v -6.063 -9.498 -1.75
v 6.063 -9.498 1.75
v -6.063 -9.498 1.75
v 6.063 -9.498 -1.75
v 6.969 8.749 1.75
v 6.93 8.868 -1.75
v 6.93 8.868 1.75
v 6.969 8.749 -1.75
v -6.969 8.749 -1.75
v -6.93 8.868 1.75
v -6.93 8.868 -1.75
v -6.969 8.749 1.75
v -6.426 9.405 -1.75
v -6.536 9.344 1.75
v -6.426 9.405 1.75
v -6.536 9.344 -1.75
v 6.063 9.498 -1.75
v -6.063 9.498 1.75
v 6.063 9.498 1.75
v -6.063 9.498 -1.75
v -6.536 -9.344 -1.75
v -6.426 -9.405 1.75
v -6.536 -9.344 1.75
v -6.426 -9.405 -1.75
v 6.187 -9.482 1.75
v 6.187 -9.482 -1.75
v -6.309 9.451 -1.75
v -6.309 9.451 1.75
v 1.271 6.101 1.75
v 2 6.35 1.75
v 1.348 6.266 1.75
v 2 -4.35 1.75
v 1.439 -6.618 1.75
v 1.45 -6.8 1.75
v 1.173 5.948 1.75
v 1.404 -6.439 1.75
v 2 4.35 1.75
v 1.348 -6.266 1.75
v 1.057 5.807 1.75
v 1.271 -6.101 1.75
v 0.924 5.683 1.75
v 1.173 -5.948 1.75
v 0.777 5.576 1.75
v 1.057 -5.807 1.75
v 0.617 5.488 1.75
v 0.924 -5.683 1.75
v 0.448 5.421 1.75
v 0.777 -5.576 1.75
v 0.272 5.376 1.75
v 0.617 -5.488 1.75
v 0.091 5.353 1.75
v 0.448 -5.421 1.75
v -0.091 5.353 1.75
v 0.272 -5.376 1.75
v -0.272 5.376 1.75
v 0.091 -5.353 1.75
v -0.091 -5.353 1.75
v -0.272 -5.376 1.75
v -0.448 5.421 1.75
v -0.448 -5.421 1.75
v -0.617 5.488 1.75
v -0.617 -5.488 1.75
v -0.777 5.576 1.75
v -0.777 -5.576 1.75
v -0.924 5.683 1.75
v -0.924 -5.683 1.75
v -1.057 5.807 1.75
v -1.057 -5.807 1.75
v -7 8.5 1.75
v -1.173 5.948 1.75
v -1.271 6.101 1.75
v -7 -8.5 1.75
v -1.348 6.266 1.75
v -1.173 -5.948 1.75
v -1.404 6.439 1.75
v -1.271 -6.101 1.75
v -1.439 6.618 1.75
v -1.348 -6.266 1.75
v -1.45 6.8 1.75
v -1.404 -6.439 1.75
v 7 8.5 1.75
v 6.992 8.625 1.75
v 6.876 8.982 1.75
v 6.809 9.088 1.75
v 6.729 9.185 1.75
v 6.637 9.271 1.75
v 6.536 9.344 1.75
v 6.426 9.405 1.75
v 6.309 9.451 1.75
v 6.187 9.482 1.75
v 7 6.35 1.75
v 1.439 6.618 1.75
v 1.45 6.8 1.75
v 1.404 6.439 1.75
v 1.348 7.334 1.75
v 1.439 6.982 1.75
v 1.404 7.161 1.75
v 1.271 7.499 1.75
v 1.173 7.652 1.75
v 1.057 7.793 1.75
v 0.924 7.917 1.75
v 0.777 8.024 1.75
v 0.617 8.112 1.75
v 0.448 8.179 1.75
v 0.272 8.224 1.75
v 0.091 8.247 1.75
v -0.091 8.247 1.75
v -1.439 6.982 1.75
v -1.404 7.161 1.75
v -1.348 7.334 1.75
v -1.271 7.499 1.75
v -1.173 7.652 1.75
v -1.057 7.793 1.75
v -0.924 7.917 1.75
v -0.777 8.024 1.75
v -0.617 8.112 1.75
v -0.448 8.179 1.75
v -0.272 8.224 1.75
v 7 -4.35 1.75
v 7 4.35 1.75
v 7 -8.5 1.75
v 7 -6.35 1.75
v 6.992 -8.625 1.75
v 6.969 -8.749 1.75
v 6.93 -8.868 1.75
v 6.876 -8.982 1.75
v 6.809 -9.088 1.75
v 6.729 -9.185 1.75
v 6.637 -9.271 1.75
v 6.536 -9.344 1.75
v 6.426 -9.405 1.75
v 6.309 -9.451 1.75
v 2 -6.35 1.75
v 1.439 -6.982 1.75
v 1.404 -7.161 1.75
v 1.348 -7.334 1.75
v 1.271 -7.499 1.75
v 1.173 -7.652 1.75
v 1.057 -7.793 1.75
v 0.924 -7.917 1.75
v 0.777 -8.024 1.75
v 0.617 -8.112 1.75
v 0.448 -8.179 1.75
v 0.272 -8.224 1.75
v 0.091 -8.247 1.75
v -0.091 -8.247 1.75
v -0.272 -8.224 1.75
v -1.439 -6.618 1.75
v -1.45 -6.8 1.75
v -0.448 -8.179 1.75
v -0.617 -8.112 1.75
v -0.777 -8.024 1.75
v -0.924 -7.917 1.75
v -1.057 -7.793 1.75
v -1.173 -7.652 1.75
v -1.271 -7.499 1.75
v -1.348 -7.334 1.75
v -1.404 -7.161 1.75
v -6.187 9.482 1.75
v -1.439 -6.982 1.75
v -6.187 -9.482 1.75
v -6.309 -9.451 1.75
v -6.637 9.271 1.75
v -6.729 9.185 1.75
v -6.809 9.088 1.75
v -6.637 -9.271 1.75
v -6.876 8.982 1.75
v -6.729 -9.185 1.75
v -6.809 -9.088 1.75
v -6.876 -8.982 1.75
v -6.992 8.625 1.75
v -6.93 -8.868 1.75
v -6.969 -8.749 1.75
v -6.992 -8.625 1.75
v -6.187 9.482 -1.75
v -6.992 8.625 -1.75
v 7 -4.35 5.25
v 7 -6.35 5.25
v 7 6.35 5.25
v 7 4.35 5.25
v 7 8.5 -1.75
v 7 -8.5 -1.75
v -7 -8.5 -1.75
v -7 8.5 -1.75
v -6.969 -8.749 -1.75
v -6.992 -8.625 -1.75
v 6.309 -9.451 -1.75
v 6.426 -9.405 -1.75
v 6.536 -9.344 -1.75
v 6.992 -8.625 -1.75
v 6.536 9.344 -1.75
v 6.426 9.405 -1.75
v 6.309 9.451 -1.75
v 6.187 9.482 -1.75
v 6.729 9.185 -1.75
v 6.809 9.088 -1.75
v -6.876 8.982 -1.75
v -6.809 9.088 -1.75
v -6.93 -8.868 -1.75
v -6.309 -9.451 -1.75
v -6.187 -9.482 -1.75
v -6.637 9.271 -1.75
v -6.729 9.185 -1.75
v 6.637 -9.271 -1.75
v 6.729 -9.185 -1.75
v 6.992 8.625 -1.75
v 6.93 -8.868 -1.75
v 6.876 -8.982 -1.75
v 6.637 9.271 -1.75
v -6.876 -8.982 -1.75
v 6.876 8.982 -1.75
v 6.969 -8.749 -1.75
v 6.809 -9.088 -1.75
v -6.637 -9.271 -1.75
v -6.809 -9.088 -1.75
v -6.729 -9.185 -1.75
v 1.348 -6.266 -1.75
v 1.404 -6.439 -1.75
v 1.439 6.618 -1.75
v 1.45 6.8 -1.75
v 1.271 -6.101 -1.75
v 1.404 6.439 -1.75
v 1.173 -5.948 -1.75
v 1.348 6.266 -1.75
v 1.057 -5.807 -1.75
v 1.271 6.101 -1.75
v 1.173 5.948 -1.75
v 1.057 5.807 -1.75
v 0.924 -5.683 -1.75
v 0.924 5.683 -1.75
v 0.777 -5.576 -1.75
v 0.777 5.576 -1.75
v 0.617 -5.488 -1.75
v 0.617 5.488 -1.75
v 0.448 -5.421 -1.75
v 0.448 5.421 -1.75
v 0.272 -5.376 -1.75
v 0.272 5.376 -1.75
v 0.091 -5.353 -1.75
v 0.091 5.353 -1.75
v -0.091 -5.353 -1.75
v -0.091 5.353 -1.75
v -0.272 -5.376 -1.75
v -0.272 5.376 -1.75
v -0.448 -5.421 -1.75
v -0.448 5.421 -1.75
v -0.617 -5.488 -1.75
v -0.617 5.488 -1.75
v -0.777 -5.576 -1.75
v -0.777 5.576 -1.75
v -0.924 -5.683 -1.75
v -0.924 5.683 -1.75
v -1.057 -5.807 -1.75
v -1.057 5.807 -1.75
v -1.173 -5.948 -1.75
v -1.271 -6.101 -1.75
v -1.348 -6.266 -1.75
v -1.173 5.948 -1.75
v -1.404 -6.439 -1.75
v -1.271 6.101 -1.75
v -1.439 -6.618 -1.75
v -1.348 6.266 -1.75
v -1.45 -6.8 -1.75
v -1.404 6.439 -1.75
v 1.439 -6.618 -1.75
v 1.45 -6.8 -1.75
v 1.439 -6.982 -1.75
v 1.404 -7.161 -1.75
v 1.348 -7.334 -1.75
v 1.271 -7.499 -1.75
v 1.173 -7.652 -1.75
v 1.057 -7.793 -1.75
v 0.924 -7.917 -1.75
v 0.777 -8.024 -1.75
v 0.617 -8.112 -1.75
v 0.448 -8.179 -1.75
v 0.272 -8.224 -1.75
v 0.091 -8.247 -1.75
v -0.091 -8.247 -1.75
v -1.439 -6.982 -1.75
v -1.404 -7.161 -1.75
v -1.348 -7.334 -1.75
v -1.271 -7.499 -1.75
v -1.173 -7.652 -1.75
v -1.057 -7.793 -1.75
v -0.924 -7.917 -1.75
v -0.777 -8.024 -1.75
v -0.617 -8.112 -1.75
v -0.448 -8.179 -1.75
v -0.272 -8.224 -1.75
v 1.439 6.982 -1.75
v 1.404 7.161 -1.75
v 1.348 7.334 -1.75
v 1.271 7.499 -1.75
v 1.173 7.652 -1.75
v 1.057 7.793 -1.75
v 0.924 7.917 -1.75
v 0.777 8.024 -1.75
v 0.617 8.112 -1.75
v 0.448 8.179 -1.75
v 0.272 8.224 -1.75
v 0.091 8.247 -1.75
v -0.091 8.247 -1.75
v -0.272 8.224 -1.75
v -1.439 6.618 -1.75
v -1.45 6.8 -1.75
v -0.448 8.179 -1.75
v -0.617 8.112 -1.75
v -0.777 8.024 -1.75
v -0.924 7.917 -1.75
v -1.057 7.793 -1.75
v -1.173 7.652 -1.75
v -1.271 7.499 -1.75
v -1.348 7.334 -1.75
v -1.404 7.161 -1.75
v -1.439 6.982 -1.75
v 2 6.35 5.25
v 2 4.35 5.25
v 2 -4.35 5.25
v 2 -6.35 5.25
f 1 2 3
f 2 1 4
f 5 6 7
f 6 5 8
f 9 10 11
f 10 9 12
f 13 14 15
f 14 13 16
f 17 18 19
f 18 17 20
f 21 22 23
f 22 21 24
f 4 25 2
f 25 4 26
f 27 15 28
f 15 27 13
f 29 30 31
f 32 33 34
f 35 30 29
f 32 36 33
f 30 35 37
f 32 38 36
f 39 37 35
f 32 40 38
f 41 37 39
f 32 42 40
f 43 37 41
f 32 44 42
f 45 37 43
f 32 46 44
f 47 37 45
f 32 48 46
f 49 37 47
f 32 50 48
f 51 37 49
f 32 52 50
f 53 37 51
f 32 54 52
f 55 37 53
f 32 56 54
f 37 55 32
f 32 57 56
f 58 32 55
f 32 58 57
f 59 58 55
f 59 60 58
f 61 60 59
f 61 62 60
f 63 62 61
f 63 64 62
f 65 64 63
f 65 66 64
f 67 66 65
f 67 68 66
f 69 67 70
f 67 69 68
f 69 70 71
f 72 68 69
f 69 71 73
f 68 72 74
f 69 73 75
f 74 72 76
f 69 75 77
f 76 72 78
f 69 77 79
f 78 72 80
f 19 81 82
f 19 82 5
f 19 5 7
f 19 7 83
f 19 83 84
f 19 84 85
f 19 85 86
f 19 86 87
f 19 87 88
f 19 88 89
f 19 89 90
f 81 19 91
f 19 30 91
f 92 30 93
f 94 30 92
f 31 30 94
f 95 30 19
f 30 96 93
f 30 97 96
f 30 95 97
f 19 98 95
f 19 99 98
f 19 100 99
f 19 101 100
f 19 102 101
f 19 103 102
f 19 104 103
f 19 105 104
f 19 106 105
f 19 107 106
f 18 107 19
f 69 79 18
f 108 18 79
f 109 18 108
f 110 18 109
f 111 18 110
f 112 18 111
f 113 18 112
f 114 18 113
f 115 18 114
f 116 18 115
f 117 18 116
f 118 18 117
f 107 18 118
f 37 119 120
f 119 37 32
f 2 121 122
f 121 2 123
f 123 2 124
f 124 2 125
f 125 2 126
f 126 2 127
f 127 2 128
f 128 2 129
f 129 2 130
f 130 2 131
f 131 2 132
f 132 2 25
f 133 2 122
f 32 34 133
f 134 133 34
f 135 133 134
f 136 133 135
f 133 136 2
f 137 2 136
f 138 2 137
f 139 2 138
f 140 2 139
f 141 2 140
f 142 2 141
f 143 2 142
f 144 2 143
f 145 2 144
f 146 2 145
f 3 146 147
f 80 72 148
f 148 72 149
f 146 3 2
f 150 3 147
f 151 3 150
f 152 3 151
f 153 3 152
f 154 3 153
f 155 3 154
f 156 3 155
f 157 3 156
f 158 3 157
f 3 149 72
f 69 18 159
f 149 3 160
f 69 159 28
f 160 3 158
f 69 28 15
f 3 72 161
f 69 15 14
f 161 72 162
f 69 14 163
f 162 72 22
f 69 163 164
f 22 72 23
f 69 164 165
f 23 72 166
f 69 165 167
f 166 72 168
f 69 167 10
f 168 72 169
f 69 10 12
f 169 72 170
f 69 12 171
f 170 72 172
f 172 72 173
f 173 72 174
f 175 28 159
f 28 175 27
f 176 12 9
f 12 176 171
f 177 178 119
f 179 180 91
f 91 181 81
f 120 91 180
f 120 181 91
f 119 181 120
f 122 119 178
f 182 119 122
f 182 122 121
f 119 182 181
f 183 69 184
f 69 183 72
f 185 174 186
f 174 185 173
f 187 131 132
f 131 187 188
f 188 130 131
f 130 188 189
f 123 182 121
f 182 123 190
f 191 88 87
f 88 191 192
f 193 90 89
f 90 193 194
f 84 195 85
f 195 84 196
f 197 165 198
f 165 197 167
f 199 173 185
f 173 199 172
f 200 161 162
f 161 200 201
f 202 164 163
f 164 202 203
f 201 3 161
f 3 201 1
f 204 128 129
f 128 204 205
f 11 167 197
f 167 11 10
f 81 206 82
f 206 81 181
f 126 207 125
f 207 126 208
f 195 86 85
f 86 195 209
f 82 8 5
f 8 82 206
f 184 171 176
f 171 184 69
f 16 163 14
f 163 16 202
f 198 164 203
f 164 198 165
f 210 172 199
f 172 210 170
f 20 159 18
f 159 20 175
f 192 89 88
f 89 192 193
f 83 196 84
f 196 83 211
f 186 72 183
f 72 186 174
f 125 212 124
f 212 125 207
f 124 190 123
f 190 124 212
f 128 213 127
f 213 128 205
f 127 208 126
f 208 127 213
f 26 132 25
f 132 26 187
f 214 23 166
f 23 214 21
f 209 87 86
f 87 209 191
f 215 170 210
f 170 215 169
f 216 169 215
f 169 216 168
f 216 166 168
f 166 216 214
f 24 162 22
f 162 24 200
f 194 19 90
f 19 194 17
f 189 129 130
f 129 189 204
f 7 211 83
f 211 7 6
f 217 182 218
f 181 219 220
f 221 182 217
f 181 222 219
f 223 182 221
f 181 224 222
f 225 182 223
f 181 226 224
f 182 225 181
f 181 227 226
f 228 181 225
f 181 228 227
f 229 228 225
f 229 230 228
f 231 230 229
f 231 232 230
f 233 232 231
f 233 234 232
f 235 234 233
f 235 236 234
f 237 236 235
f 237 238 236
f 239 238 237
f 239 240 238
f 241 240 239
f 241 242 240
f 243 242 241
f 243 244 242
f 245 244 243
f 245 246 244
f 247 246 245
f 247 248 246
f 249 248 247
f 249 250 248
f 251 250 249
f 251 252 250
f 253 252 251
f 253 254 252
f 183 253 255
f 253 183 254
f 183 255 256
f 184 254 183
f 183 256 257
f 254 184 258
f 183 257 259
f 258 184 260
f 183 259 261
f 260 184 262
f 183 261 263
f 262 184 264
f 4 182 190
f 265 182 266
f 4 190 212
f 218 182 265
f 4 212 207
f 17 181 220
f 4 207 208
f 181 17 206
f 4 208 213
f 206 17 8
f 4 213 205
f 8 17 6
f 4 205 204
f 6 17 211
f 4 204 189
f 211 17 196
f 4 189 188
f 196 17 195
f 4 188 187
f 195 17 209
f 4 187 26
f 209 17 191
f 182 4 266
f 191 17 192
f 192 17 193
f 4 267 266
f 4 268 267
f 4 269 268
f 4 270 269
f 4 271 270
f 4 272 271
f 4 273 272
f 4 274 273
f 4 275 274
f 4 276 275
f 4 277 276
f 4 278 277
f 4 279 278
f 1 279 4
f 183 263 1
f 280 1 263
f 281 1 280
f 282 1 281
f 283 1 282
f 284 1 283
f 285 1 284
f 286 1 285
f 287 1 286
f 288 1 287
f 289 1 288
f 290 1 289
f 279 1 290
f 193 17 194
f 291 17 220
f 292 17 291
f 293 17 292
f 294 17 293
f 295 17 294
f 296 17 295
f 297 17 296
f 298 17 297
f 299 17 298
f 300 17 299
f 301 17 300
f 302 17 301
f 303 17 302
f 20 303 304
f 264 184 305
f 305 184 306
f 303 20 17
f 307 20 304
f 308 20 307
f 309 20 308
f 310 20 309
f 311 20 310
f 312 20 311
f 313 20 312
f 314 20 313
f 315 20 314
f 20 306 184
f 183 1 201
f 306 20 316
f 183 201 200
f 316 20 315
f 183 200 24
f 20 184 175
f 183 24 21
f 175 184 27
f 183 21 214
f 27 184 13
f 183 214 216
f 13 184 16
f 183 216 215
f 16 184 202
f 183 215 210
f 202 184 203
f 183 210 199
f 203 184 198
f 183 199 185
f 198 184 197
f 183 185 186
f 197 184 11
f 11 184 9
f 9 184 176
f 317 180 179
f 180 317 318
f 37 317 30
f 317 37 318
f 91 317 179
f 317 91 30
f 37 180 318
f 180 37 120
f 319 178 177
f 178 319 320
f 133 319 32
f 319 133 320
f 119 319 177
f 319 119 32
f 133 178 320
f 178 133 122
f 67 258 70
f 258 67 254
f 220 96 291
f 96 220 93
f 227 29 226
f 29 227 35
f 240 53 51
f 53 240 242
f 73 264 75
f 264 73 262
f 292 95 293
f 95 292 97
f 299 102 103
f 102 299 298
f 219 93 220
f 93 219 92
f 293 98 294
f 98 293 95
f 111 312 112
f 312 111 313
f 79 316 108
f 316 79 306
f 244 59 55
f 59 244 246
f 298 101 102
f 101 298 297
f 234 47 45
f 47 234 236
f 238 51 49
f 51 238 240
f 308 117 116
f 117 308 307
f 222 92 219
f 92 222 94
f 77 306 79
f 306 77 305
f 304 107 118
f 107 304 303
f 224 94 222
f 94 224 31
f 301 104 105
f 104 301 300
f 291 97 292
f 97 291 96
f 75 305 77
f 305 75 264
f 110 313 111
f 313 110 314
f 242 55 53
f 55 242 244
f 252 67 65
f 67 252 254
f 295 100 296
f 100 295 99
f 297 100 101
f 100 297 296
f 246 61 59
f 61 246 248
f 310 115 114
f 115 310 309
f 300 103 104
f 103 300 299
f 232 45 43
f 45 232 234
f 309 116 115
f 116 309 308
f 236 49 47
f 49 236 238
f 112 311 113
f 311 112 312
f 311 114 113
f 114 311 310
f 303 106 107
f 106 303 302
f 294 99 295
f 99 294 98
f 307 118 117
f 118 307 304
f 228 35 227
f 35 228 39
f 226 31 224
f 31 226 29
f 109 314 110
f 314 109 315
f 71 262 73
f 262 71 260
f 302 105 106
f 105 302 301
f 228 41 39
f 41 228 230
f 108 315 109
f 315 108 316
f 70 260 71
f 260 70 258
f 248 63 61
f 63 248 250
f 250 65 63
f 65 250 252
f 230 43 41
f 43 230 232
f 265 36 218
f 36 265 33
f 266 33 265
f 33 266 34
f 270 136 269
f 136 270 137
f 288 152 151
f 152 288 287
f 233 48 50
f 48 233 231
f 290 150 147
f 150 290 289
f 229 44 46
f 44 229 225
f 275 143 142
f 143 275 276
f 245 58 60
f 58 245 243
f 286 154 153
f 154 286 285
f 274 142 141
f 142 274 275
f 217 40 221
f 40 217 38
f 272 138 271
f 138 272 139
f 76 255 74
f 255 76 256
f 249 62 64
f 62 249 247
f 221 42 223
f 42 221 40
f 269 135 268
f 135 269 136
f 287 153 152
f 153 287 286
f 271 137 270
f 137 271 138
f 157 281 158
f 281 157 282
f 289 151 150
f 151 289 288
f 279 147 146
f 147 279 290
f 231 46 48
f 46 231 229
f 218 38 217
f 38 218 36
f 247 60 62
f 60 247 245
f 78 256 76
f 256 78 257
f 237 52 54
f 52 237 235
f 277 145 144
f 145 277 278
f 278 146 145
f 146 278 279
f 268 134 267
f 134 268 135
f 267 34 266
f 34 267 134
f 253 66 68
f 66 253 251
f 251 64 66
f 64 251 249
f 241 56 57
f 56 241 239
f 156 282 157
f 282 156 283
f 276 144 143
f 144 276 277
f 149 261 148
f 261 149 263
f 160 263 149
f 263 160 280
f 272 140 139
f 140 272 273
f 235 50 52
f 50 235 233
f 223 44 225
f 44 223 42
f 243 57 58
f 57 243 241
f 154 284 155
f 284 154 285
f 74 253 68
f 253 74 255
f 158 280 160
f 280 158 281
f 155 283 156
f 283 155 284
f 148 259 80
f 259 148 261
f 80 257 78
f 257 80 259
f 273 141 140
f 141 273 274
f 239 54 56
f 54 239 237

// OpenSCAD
// Fix for a Pioneer turntable stylus
// Author: Alessandro Paganelli (alessandro.paganelli@gmail.com)

// Measures: in mm

// Constants
$fn = 50;

// Radius + approx 2% tolerance
HOLE_RADIUS = 1.45;
THICKNESS = 3.5;
SEPARATION = 10.7;
SIZE_X = 14.0;
SIZE_Y = 19.0;
WALL_X = 5.0;
WALL_Y = 2.0;
WALL_Z = 3.5;

// Modules
module fix_wall(wall_x, wall_y, wall_z)
{
    cube([wall_x, wall_y, wall_z], center = true);
}


module fix_base(size_x, size_y, thickness)
{
    hull_radius = 1.0;
    minkowski()
    {
        cube([size_x - 2 * hull_radius, size_y - 2 * hull_radius, thickness / 2], center = true);
        cylinder(r = 1, h = thickness / 2, center = true);
    }
}

module screw_holes(radius, distance_y, hole_height)
{
    actual_distance_y = distance_y + 2 * radius;
    union()
    {
        translate([0, actual_distance_y / 2, 0])
        cylinder(h = hole_height, r = radius, center = true);
        
        translate([0, - actual_distance_y / 2, 0])
        cylinder(h = hole_height, r = radius, center = true);
    }
}


// Actual script
difference()
{
    union()
    {
        fix_base(SIZE_X, SIZE_Y, THICKNESS);
        translate([SIZE_X / 2 - WALL_X / 2, SEPARATION / 2, THICKNESS])
        fix_wall(WALL_X, WALL_Y, WALL_Z);
        translate([SIZE_X / 2 - WALL_X / 2, - SEPARATION / 2, THICKNESS])
        fix_wall(WALL_X, WALL_Y, WALL_Z);
    }
    screw_holes(HOLE_RADIUS, SEPARATION, THICKNESS);
}
